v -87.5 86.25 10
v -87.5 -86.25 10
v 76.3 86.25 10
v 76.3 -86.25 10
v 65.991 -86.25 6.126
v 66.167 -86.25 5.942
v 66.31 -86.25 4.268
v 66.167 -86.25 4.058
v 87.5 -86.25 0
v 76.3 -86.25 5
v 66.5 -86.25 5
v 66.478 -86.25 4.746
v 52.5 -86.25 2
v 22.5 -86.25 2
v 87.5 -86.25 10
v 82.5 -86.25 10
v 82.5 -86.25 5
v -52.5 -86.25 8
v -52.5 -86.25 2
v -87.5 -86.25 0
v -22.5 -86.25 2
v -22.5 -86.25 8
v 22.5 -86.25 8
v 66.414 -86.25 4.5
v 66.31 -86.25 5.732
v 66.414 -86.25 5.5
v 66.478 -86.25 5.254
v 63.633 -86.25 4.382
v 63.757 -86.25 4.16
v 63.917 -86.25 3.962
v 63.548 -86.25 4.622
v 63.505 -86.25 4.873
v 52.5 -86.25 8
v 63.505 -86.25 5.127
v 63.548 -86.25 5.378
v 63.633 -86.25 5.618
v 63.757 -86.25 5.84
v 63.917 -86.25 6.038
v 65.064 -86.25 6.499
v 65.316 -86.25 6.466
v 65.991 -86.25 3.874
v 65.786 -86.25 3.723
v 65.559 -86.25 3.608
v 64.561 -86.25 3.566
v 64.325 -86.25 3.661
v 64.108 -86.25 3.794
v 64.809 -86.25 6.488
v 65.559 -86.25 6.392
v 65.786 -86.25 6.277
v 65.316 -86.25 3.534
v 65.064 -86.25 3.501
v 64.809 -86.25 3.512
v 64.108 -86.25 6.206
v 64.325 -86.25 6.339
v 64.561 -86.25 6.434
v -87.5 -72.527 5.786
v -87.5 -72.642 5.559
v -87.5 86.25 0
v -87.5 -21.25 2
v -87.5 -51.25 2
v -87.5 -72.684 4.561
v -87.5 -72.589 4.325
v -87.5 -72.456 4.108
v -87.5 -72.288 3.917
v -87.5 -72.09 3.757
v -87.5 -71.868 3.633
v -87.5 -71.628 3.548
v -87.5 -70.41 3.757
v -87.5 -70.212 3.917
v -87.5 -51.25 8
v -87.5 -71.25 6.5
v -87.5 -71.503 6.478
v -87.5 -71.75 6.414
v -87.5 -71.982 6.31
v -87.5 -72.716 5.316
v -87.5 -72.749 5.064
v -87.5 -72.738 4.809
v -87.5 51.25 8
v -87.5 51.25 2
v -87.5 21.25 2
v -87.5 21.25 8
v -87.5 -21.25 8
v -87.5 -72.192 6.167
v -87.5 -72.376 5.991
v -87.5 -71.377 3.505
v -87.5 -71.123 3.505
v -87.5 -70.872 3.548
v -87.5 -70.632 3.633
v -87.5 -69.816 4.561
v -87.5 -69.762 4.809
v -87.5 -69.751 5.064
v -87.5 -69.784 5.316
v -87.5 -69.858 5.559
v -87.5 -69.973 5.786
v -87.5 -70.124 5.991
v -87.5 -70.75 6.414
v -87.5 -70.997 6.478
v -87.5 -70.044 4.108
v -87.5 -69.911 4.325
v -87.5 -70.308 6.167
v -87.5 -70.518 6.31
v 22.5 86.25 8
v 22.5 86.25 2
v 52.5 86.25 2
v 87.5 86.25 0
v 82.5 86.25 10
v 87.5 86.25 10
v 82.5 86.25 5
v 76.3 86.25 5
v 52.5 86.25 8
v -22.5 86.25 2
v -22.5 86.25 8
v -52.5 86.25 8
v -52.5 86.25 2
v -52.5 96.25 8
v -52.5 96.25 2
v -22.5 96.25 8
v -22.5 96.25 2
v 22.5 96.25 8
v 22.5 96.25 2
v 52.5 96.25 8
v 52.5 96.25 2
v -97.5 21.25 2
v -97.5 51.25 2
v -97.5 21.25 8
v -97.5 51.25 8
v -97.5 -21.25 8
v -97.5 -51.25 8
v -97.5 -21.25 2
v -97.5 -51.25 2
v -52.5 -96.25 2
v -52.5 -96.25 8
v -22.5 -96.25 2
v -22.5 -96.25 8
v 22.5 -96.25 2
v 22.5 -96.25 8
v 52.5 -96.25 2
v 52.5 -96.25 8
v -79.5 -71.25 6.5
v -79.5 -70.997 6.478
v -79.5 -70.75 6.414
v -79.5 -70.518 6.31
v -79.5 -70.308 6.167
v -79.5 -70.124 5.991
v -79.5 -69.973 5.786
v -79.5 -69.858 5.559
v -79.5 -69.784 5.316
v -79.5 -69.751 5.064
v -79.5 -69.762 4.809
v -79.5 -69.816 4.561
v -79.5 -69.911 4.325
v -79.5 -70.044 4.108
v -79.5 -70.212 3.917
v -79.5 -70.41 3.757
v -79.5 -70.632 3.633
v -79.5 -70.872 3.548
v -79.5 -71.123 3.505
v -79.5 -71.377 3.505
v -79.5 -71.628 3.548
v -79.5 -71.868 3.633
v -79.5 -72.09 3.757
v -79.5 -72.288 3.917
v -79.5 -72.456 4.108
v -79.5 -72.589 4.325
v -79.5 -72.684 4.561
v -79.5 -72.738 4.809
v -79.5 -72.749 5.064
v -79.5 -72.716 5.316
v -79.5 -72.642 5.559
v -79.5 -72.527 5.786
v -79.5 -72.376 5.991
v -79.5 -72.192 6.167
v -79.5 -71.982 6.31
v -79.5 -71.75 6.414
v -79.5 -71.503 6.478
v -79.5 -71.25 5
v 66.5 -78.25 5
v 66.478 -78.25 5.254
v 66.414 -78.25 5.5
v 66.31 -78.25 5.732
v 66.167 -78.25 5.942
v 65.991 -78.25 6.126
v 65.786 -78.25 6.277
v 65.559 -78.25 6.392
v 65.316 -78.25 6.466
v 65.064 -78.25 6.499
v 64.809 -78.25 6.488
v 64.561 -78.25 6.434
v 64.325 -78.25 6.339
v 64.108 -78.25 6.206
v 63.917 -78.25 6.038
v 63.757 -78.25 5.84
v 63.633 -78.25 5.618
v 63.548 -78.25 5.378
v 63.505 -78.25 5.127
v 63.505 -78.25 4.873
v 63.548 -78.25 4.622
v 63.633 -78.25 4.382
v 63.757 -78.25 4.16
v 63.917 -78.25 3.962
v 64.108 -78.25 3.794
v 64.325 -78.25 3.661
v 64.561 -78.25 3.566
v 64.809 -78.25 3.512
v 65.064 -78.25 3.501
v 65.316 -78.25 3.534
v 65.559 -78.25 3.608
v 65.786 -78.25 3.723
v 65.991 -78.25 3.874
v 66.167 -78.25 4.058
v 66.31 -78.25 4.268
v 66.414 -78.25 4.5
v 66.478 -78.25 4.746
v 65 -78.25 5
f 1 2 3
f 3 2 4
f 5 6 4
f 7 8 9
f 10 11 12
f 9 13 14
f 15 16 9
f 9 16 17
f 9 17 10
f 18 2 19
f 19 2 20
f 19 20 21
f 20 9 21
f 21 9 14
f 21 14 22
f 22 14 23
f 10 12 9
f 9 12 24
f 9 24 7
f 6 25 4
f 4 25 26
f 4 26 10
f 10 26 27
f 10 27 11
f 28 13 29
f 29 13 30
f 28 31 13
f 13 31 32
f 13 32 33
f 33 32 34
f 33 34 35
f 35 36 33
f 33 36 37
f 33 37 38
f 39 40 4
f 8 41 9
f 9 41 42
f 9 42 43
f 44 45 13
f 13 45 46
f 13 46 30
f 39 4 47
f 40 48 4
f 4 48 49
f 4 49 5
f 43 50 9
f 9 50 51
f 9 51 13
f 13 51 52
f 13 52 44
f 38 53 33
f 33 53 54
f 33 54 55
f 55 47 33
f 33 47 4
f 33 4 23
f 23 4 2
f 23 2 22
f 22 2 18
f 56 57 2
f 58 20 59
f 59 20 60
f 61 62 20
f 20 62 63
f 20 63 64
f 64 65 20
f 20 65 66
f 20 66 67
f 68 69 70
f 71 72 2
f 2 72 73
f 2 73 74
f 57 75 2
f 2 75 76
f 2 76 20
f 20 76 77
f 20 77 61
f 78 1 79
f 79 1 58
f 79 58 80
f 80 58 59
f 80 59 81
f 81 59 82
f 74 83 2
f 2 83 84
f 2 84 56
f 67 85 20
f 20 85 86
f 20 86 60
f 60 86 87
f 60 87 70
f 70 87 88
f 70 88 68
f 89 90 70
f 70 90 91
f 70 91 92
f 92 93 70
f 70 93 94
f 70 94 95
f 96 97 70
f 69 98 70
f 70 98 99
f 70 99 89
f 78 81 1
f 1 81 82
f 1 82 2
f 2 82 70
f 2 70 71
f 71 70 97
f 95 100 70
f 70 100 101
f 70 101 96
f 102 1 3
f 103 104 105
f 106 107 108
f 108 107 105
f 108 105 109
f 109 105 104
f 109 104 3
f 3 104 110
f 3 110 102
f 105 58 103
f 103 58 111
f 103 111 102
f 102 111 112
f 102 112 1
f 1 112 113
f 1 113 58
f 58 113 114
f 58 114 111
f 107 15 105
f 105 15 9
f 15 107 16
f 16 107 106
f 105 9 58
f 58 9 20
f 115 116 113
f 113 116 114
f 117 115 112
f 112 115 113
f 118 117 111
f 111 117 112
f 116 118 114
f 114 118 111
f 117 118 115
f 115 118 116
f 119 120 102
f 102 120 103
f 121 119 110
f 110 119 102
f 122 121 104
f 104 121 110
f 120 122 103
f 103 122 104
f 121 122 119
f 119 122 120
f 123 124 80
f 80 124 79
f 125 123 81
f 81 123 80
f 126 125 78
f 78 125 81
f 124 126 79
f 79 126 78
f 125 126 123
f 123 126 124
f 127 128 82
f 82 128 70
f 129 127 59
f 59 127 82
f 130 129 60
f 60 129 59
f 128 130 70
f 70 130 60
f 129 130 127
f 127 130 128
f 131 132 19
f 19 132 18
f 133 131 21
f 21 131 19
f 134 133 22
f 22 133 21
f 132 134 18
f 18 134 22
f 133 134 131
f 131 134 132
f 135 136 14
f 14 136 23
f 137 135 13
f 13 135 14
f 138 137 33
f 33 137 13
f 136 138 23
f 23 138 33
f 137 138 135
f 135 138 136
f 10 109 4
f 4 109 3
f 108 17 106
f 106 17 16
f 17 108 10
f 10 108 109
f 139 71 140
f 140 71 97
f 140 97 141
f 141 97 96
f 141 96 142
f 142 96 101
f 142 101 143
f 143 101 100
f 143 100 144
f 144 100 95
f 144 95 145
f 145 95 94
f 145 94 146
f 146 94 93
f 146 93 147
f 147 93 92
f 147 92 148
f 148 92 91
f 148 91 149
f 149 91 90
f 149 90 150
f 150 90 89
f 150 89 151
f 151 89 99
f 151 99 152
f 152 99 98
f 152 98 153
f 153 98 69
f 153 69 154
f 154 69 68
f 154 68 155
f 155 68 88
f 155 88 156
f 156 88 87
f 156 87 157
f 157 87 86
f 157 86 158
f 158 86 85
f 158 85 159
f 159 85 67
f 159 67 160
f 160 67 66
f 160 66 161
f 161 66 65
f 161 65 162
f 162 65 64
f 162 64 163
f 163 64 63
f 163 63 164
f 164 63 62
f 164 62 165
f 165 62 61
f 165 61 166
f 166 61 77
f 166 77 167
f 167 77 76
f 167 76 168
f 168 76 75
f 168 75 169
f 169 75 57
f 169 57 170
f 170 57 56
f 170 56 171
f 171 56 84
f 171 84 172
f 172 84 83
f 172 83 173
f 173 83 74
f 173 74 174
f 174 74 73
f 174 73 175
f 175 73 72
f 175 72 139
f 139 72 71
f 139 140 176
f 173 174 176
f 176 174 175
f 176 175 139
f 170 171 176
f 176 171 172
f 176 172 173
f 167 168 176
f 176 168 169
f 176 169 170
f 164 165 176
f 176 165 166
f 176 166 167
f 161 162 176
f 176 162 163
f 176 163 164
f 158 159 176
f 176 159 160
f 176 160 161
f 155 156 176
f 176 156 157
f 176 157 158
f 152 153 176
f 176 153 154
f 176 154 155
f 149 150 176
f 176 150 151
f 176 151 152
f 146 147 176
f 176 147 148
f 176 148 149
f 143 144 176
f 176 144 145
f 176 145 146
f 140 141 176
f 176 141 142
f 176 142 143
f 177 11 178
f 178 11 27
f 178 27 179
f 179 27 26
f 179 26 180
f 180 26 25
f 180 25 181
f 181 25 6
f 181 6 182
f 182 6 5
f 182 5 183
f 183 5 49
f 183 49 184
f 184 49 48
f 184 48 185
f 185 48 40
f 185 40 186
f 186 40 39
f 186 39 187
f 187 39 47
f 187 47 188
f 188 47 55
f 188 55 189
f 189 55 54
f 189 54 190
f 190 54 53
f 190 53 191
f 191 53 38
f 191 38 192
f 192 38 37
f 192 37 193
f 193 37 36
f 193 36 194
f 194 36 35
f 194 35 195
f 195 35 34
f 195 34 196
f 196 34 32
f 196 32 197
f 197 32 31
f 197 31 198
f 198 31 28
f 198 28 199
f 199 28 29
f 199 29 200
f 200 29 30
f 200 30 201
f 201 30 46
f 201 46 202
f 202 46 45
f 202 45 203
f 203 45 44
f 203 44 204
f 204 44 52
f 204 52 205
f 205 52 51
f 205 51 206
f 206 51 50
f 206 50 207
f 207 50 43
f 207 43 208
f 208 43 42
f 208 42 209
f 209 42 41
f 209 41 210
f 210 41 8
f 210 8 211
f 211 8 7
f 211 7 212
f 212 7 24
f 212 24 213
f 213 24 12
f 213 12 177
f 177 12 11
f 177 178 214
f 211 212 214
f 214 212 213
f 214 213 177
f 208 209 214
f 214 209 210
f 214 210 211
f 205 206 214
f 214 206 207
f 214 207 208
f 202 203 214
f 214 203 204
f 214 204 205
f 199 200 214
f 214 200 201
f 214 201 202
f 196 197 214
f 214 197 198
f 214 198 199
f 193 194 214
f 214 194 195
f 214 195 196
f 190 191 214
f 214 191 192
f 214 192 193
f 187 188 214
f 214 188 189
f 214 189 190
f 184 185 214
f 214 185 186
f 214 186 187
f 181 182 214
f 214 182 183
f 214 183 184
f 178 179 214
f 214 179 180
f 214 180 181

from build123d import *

# Parameters (mm, degrees)
ESBO_O1_W                = 175
ESBO_O1_H                = 172.5
RESSALTO_EXTRUS_O1_DEPTH = 10
ESBO_O5_W                = 30
ESBO_O5_H                = 6
RESSALTO_EXTRUS_O5_DEPTH = 10
ESBO_O6_W                = 6
ESBO_O6_H                = 30
RESSALTO_EXTRUS_O6_DEPTH = 10
ESBO_O7_W                = 30
ESBO_O7_H                = 6
RESSALTO_EXTRUS_O7_DEPTH = 10
ESBO_O9_W                = 6.2
ESBO_O9_H                = 172.5
CORTE_EXTRUS_O2_DEPTH    = 5
ESBO_O10_R               = 1.5
CORTE_EXTRUS_O3_DEPTH    = 8
ESBO_O11_R               = 1.5
CORTE_EXTRUS_O4_DEPTH    = 8


with BuildPart() as part:
    # Esboço1 → Ressalto-extrusão1 (new body)
    with BuildSketch(Plane.XY):
        Rectangle(ESBO_O1_W, ESBO_O1_H)
    extrude(amount=RESSALTO_EXTRUS_O1_DEPTH)

    # Esboço5 → Ressalto-extrusão5 (add)
    with BuildSketch(Plane(origin=(0, 86.25, 0), x_dir=(1, 0, 0), z_dir=(0, 1, 0))):
        with Locations((-37.5, -5)):
            Rectangle(ESBO_O5_W, ESBO_O5_H)
        with Locations((37.5, -5)):
            Rectangle(ESBO_O5_W, ESBO_O5_H)
    extrude(amount=RESSALTO_EXTRUS_O5_DEPTH)

    # Esboço6 → Ressalto-extrusão6 (add)
    with BuildSketch(Plane.ZY.offset(87.5)):
        with Locations((5, 36.25)):
            Rectangle(ESBO_O6_W, ESBO_O6_H)
        with Locations((5, -36.25)):
            Rectangle(ESBO_O6_W, ESBO_O6_H)
    extrude(amount=RESSALTO_EXTRUS_O6_DEPTH)

    # Esboço7 → Ressalto-extrusão7 (add)
    with BuildSketch(Plane.XZ.offset(86.25)):
        with Locations((-37.5, 5)):
            Rectangle(ESBO_O7_W, ESBO_O7_H)
        with Locations((37.5, 5)):
            Rectangle(ESBO_O7_W, ESBO_O7_H)
    extrude(amount=RESSALTO_EXTRUS_O7_DEPTH)

    # Esboço9 → Corte-extrusão2 (cut)
    with BuildSketch(Plane.XY.offset(10)):
        with Locations((79.4, 0)):
            Rectangle(ESBO_O9_W, ESBO_O9_H)
    extrude(amount=-CORTE_EXTRUS_O2_DEPTH, mode=Mode.SUBTRACT)

    # Esboço10 → Corte-extrusão3 (cut)
    with BuildSketch(Plane.ZY.offset(87.5)):
        with Locations((5, -71.25)):
            Circle(ESBO_O10_R)
    extrude(amount=-CORTE_EXTRUS_O3_DEPTH, mode=Mode.SUBTRACT)

    # Esboço11 → Corte-extrusão4 (cut)
    with BuildSketch(Plane.XZ.offset(86.25)):
        with Locations((65, 5)):
            Circle(ESBO_O11_R)
    extrude(amount=-CORTE_EXTRUS_O4_DEPTH, mode=Mode.SUBTRACT)


solid = part.part
